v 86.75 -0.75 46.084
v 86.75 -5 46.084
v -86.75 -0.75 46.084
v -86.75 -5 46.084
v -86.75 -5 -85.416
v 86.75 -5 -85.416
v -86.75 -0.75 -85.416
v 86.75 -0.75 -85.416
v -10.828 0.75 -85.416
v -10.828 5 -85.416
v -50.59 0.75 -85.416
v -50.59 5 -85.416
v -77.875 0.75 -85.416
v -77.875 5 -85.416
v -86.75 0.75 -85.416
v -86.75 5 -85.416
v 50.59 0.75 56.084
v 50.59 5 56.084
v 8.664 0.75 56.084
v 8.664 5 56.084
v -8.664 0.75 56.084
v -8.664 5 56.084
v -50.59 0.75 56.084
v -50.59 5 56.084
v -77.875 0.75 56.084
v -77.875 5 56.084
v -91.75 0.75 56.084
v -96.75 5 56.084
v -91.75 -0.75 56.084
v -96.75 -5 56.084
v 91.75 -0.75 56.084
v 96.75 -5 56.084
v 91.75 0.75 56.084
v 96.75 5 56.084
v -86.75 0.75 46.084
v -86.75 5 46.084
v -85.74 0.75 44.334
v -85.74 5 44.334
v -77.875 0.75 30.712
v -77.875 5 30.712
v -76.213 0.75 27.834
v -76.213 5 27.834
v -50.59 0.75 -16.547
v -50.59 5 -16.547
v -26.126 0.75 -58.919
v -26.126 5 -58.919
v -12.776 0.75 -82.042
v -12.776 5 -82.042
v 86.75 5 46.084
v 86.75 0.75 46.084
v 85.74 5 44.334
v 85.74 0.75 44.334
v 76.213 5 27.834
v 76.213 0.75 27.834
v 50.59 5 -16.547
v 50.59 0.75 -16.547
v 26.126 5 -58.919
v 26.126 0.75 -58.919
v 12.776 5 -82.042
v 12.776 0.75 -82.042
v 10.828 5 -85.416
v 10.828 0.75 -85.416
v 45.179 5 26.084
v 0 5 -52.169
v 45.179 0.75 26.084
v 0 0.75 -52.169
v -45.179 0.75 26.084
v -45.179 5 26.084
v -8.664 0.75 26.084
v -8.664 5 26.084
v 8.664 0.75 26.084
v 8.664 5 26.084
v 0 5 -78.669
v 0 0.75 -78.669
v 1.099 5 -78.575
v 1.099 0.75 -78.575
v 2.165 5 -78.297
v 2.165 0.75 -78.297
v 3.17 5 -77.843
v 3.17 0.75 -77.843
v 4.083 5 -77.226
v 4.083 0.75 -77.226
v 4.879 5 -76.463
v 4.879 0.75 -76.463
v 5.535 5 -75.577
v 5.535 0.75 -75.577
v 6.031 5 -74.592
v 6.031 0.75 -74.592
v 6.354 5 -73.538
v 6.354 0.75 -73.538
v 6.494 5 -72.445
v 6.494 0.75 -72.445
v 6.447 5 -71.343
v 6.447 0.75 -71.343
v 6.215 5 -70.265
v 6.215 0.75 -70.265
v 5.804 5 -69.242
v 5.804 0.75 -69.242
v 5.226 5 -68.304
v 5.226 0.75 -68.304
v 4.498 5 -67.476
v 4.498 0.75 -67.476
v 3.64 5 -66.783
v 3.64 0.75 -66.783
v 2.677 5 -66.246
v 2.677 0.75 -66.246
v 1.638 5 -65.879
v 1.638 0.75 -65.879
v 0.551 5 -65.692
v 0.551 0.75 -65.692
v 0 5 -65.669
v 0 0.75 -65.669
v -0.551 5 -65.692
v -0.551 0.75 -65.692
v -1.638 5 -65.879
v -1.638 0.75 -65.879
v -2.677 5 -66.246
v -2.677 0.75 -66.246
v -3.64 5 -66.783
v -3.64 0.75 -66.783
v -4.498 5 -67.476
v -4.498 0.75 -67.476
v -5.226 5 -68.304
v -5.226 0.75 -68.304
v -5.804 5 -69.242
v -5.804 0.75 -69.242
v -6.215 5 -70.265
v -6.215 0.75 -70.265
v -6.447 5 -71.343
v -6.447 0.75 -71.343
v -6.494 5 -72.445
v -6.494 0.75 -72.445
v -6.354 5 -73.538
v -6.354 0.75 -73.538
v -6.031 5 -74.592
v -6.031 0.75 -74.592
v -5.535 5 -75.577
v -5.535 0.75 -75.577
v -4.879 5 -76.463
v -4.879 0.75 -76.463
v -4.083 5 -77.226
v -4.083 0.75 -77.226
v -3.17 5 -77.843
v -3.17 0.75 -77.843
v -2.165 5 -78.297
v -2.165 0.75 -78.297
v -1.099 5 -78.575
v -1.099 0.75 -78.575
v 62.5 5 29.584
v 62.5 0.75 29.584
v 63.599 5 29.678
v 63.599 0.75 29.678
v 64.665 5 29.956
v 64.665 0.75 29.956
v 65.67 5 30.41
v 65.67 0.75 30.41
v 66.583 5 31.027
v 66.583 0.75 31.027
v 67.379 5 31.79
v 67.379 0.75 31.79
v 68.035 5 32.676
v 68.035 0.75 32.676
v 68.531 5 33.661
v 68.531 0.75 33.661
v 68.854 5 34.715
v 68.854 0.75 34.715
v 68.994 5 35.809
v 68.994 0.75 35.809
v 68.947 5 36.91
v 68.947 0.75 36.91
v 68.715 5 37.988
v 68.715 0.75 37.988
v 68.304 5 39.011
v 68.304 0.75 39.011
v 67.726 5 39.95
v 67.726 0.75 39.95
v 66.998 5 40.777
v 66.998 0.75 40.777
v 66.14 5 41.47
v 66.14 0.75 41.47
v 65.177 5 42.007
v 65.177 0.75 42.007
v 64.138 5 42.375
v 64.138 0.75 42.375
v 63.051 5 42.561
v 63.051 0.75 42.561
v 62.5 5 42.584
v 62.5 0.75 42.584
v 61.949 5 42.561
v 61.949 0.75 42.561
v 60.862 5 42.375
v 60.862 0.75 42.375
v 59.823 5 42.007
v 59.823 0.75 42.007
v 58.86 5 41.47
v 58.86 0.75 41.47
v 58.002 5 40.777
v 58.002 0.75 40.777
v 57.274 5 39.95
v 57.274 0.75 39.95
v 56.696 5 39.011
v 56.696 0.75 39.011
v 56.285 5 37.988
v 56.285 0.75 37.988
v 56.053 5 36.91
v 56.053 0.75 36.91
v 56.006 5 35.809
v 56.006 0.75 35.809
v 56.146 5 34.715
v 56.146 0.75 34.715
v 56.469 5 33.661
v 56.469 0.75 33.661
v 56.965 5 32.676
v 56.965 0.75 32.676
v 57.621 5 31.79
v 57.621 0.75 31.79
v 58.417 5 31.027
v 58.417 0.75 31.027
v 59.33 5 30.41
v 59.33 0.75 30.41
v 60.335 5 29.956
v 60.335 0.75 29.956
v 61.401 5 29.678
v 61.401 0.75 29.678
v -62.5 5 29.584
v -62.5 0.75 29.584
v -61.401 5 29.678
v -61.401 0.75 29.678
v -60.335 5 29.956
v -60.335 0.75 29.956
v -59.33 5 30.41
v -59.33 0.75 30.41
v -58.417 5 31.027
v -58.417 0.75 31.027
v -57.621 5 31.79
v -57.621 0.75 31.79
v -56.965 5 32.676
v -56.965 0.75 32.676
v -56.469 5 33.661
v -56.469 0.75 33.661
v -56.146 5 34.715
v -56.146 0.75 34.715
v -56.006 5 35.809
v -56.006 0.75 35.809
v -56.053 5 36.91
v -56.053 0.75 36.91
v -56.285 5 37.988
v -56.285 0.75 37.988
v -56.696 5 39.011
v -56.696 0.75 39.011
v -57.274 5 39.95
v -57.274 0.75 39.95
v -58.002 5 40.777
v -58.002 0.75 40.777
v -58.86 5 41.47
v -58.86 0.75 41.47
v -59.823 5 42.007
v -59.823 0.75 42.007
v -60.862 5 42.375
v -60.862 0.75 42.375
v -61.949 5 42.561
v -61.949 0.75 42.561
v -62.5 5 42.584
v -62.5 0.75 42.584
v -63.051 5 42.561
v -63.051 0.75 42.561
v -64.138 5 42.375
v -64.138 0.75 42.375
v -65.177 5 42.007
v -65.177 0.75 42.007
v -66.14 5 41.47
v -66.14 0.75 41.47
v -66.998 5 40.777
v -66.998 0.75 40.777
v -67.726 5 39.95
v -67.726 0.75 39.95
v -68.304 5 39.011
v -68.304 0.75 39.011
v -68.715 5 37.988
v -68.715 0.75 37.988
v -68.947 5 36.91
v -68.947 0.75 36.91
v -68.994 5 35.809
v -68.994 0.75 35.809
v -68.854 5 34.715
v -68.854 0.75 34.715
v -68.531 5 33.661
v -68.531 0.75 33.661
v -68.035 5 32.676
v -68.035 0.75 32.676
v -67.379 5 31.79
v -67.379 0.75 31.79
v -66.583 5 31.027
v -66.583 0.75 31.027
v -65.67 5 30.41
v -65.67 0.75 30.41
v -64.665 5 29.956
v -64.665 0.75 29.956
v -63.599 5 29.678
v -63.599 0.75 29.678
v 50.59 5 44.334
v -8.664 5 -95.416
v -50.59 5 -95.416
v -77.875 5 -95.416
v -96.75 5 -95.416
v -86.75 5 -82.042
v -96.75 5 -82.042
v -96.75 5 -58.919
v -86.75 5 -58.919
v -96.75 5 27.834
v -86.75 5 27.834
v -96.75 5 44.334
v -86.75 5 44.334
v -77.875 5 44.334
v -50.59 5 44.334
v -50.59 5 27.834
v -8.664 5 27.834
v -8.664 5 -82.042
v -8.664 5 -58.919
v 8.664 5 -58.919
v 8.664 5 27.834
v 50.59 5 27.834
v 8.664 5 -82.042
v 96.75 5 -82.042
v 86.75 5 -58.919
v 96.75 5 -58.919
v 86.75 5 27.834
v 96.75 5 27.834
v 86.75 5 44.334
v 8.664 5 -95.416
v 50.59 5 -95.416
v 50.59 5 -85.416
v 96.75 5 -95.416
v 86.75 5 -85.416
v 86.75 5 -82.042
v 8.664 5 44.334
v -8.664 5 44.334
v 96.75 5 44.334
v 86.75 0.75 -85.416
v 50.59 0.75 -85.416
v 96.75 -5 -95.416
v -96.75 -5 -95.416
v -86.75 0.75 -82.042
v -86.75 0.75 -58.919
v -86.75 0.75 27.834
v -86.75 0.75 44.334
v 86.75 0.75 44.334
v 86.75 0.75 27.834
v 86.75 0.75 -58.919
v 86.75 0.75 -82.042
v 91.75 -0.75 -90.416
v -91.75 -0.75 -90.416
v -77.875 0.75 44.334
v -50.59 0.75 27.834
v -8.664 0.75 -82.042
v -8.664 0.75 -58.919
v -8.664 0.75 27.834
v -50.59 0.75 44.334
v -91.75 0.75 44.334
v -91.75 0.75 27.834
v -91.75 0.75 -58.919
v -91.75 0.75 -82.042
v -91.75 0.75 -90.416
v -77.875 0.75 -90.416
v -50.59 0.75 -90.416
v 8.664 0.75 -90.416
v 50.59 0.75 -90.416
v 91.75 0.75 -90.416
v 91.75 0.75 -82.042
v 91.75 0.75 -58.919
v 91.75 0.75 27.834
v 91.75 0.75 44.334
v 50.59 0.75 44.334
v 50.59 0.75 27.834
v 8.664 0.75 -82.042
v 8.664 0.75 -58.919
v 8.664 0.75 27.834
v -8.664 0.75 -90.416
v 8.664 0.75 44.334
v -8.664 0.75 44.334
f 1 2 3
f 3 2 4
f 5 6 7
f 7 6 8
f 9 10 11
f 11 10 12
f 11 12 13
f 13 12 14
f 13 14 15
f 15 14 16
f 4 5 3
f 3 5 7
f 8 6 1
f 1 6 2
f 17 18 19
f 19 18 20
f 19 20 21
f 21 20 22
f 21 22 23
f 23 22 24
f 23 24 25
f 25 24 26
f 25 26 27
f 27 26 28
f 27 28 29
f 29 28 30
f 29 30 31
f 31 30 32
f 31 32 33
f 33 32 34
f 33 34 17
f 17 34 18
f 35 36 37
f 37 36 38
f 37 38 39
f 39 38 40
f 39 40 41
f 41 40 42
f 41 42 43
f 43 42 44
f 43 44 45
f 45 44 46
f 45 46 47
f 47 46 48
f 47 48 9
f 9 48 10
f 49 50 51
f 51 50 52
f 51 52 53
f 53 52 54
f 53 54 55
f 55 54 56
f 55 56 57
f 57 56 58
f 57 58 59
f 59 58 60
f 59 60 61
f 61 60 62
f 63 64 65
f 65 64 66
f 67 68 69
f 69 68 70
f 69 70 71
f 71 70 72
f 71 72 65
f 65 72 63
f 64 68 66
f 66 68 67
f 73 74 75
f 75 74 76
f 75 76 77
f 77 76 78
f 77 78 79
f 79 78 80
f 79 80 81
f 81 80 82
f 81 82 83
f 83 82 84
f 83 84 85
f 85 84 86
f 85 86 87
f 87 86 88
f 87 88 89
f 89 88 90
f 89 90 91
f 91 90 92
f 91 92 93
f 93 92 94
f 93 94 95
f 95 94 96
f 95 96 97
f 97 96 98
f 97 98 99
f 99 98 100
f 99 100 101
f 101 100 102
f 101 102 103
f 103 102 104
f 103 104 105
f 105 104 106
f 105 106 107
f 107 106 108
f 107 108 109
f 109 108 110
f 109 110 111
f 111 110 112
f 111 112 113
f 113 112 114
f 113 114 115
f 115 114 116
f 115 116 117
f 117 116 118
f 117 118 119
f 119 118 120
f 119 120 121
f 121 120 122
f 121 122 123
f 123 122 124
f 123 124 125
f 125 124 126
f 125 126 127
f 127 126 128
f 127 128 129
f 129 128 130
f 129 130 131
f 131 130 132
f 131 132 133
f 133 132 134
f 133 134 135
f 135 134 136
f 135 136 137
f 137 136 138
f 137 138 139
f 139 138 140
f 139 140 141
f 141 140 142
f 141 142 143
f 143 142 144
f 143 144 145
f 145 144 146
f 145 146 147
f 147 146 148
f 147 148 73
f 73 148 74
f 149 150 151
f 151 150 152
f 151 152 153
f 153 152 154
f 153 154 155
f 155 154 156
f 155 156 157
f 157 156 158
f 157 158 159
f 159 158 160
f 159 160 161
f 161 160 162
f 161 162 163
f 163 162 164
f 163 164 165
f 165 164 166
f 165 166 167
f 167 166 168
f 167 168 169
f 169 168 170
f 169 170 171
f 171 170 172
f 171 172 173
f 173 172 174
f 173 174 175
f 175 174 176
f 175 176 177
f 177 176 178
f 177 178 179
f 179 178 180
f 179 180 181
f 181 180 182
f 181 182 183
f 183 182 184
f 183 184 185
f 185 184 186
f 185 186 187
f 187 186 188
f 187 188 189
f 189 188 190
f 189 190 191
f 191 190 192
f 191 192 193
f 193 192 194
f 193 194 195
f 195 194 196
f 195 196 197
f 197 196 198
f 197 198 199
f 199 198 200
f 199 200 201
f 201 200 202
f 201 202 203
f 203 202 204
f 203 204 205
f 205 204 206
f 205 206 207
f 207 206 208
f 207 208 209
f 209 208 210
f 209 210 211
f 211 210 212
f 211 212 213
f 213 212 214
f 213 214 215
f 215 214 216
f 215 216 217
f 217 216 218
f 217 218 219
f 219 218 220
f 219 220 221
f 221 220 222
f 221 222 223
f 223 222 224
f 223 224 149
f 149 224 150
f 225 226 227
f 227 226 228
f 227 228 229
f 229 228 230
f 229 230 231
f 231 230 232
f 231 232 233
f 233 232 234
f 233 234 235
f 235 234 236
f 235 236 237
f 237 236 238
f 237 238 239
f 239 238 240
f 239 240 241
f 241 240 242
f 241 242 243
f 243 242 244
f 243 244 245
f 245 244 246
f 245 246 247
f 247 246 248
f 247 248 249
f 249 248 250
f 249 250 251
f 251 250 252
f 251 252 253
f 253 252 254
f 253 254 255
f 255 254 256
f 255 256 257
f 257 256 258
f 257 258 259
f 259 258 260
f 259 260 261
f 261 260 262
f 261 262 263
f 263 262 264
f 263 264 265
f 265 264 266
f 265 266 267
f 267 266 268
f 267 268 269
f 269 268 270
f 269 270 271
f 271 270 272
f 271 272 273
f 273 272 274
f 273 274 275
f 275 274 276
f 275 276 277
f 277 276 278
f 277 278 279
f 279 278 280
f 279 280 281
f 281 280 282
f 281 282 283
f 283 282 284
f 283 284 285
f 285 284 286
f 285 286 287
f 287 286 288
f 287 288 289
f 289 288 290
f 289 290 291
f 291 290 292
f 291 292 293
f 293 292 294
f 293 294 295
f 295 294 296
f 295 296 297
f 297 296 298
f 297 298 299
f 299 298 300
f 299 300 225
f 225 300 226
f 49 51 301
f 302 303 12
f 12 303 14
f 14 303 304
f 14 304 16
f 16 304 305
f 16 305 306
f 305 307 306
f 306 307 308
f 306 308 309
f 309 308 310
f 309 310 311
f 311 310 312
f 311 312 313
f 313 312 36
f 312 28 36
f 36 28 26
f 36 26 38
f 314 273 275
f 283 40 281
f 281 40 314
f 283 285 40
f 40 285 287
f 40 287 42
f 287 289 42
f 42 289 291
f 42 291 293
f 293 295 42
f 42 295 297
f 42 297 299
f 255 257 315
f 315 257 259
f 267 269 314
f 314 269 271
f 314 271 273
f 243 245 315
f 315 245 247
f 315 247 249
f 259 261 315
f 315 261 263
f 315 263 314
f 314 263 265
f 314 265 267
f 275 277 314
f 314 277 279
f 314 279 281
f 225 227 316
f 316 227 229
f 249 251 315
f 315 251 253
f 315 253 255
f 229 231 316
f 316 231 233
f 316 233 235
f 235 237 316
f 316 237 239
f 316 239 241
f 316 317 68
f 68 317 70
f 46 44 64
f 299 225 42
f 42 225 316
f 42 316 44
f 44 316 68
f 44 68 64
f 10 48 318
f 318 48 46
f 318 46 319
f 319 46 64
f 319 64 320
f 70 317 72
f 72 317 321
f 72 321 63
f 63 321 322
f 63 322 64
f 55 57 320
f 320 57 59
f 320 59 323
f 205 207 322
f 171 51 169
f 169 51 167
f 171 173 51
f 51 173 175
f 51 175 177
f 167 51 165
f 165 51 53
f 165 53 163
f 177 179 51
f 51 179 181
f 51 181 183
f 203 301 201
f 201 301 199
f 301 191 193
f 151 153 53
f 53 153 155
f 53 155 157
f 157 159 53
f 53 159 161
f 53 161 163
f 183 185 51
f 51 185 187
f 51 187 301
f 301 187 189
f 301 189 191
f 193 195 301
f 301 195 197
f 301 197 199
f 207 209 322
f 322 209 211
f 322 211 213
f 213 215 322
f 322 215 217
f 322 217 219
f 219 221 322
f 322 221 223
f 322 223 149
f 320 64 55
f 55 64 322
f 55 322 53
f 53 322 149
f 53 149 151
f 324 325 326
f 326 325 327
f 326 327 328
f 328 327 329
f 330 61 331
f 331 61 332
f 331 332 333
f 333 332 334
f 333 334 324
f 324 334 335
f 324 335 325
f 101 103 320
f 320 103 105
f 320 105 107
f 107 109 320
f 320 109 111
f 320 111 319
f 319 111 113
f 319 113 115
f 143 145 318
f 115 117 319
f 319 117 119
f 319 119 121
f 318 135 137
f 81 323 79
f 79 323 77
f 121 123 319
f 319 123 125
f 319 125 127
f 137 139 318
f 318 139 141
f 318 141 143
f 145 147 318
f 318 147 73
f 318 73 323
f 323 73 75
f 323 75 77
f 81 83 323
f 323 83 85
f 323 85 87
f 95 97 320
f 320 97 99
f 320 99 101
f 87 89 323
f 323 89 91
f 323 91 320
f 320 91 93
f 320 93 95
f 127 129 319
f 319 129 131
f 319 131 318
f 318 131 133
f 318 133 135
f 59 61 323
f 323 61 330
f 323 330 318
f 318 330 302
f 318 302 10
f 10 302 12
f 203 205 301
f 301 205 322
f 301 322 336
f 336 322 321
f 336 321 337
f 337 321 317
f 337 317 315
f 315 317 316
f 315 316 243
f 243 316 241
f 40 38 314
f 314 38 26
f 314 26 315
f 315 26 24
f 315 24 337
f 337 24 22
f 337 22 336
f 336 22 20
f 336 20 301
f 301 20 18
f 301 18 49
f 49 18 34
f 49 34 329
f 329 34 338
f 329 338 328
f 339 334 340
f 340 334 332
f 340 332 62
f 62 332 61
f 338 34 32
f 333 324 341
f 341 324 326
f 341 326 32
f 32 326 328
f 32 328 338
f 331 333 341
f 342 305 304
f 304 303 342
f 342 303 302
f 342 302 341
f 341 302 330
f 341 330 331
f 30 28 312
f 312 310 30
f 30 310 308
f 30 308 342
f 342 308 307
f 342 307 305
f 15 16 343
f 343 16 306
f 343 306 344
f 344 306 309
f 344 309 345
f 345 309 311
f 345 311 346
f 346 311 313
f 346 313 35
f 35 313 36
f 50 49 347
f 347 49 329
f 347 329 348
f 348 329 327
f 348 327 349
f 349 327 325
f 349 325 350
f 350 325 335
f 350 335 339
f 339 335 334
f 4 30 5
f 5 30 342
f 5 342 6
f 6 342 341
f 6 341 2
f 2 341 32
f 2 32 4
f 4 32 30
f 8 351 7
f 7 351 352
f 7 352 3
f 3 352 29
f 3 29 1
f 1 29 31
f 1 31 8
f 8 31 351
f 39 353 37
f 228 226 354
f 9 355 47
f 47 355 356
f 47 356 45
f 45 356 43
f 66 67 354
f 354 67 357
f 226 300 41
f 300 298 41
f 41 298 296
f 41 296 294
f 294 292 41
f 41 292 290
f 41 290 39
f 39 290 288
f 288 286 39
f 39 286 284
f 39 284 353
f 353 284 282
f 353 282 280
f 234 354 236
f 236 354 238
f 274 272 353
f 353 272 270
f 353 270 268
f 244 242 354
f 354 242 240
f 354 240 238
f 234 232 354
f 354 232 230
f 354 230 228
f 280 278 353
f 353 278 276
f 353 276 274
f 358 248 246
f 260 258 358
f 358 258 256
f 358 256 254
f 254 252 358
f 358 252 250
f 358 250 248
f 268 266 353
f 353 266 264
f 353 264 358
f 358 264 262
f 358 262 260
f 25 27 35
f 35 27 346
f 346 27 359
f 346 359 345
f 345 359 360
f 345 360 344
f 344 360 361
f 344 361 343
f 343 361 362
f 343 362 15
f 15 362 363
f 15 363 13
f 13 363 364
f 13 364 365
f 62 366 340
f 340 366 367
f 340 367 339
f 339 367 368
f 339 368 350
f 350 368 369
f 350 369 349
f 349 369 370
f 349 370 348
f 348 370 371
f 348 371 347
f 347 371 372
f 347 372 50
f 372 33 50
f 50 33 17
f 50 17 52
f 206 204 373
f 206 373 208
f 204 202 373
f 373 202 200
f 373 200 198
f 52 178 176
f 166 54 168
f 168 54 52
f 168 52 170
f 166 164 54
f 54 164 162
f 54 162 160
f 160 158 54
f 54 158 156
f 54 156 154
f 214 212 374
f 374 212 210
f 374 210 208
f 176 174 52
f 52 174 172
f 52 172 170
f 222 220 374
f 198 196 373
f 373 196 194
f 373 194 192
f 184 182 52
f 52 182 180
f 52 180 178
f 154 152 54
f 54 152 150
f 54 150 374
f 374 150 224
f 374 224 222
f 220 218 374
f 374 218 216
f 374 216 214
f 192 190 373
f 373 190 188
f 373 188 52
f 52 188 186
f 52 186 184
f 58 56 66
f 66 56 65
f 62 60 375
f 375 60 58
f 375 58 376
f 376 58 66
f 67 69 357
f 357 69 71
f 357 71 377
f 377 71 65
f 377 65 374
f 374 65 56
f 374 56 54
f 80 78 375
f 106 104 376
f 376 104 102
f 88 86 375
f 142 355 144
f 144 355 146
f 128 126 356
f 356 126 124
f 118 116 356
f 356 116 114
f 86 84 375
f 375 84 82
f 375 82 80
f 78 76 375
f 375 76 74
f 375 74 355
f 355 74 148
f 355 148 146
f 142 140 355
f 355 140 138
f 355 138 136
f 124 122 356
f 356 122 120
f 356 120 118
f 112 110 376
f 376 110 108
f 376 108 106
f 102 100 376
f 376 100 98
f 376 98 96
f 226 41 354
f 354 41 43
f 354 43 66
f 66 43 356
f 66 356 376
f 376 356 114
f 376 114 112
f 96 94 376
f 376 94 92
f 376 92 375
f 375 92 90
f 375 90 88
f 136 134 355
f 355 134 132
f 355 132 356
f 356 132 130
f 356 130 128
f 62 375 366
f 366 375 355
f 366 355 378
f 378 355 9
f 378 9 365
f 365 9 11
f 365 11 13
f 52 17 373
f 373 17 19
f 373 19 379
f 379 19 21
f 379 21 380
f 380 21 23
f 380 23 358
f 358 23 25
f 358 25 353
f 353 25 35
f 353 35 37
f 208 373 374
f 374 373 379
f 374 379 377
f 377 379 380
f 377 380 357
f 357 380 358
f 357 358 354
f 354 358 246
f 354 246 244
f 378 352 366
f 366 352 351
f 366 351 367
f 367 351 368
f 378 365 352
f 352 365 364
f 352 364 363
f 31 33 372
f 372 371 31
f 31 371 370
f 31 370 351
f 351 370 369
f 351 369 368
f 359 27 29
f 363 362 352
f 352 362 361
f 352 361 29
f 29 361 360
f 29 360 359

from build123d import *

# Parameters (mm, degrees)
SKETCH1_R           = 6.5
BOSS_EXTRUDE1_DEPTH = 5
SKETCH1_8_W         = 193.5
SKETCH1_8_H         = 151.5
BOSS_EXTRUDE2_DEPTH = 5
SKETCH2_W           = 183.5
SKETCH2_H           = 146.5
CUT_EXTRUDE2_DEPTH  = 0.75


with BuildPart() as part:
    # Sketch1 → Boss-Extrude1 (new body)
    with BuildSketch(Plane(origin=(0, 0, 0), x_dir=(1, 0, 0), z_dir=(0, 1, 0))):
        Polygon((10.828439602, 85.415608176), (-10.828439602, 85.415608176), (-86.75, -46.084391824), (86.75, -46.084391824), align=None)
        with Locations((-62.5, -36.084391824)):
            Circle(SKETCH1_R, mode=Mode.SUBTRACT)
        with Locations((62.5, -36.084391824)):
            Circle(SKETCH1_R, mode=Mode.SUBTRACT)
        Polygon((-45.179491924, -26.084391824), (0, 52.168783649), (45.179491924, -26.084391824), align=None, mode=Mode.SUBTRACT)
        with Locations((0, 72.168783649)):
            Circle(SKETCH1_R, mode=Mode.SUBTRACT)
    extrude(amount=BOSS_EXTRUDE1_DEPTH)

    # Sketch1<8> → Boss-Extrude2 (add, symmetric)
    with BuildSketch(Plane(origin=(0, 0, 0), x_dir=(1, 0, 0), z_dir=(0, 1, 0))):
        with Locations((0, 19.665608176)):
            Rectangle(SKETCH1_8_W, SKETCH1_8_H)
        Polygon((-86.75, 85.415608176), (-10.828439602, 85.415608176), (10.828439602, 85.415608176), (86.75, 85.415608176), (86.75, -46.084391824), (-86.75, -46.084391824), align=None, mode=Mode.SUBTRACT)
    extrude(amount=BOSS_EXTRUDE2_DEPTH, both=True)

    # Sketch2 → Cut-Extrude2 (cut, symmetric)
    with BuildSketch(Plane(origin=(0, 0, 0), x_dir=(1, 0, 0), z_dir=(0, 1, 0))):
        with Locations((0, 17.165608176)):
            Rectangle(SKETCH2_W, SKETCH2_H)
    extrude(amount=CUT_EXTRUDE2_DEPTH, both=True, mode=Mode.SUBTRACT)


solid = part.part
